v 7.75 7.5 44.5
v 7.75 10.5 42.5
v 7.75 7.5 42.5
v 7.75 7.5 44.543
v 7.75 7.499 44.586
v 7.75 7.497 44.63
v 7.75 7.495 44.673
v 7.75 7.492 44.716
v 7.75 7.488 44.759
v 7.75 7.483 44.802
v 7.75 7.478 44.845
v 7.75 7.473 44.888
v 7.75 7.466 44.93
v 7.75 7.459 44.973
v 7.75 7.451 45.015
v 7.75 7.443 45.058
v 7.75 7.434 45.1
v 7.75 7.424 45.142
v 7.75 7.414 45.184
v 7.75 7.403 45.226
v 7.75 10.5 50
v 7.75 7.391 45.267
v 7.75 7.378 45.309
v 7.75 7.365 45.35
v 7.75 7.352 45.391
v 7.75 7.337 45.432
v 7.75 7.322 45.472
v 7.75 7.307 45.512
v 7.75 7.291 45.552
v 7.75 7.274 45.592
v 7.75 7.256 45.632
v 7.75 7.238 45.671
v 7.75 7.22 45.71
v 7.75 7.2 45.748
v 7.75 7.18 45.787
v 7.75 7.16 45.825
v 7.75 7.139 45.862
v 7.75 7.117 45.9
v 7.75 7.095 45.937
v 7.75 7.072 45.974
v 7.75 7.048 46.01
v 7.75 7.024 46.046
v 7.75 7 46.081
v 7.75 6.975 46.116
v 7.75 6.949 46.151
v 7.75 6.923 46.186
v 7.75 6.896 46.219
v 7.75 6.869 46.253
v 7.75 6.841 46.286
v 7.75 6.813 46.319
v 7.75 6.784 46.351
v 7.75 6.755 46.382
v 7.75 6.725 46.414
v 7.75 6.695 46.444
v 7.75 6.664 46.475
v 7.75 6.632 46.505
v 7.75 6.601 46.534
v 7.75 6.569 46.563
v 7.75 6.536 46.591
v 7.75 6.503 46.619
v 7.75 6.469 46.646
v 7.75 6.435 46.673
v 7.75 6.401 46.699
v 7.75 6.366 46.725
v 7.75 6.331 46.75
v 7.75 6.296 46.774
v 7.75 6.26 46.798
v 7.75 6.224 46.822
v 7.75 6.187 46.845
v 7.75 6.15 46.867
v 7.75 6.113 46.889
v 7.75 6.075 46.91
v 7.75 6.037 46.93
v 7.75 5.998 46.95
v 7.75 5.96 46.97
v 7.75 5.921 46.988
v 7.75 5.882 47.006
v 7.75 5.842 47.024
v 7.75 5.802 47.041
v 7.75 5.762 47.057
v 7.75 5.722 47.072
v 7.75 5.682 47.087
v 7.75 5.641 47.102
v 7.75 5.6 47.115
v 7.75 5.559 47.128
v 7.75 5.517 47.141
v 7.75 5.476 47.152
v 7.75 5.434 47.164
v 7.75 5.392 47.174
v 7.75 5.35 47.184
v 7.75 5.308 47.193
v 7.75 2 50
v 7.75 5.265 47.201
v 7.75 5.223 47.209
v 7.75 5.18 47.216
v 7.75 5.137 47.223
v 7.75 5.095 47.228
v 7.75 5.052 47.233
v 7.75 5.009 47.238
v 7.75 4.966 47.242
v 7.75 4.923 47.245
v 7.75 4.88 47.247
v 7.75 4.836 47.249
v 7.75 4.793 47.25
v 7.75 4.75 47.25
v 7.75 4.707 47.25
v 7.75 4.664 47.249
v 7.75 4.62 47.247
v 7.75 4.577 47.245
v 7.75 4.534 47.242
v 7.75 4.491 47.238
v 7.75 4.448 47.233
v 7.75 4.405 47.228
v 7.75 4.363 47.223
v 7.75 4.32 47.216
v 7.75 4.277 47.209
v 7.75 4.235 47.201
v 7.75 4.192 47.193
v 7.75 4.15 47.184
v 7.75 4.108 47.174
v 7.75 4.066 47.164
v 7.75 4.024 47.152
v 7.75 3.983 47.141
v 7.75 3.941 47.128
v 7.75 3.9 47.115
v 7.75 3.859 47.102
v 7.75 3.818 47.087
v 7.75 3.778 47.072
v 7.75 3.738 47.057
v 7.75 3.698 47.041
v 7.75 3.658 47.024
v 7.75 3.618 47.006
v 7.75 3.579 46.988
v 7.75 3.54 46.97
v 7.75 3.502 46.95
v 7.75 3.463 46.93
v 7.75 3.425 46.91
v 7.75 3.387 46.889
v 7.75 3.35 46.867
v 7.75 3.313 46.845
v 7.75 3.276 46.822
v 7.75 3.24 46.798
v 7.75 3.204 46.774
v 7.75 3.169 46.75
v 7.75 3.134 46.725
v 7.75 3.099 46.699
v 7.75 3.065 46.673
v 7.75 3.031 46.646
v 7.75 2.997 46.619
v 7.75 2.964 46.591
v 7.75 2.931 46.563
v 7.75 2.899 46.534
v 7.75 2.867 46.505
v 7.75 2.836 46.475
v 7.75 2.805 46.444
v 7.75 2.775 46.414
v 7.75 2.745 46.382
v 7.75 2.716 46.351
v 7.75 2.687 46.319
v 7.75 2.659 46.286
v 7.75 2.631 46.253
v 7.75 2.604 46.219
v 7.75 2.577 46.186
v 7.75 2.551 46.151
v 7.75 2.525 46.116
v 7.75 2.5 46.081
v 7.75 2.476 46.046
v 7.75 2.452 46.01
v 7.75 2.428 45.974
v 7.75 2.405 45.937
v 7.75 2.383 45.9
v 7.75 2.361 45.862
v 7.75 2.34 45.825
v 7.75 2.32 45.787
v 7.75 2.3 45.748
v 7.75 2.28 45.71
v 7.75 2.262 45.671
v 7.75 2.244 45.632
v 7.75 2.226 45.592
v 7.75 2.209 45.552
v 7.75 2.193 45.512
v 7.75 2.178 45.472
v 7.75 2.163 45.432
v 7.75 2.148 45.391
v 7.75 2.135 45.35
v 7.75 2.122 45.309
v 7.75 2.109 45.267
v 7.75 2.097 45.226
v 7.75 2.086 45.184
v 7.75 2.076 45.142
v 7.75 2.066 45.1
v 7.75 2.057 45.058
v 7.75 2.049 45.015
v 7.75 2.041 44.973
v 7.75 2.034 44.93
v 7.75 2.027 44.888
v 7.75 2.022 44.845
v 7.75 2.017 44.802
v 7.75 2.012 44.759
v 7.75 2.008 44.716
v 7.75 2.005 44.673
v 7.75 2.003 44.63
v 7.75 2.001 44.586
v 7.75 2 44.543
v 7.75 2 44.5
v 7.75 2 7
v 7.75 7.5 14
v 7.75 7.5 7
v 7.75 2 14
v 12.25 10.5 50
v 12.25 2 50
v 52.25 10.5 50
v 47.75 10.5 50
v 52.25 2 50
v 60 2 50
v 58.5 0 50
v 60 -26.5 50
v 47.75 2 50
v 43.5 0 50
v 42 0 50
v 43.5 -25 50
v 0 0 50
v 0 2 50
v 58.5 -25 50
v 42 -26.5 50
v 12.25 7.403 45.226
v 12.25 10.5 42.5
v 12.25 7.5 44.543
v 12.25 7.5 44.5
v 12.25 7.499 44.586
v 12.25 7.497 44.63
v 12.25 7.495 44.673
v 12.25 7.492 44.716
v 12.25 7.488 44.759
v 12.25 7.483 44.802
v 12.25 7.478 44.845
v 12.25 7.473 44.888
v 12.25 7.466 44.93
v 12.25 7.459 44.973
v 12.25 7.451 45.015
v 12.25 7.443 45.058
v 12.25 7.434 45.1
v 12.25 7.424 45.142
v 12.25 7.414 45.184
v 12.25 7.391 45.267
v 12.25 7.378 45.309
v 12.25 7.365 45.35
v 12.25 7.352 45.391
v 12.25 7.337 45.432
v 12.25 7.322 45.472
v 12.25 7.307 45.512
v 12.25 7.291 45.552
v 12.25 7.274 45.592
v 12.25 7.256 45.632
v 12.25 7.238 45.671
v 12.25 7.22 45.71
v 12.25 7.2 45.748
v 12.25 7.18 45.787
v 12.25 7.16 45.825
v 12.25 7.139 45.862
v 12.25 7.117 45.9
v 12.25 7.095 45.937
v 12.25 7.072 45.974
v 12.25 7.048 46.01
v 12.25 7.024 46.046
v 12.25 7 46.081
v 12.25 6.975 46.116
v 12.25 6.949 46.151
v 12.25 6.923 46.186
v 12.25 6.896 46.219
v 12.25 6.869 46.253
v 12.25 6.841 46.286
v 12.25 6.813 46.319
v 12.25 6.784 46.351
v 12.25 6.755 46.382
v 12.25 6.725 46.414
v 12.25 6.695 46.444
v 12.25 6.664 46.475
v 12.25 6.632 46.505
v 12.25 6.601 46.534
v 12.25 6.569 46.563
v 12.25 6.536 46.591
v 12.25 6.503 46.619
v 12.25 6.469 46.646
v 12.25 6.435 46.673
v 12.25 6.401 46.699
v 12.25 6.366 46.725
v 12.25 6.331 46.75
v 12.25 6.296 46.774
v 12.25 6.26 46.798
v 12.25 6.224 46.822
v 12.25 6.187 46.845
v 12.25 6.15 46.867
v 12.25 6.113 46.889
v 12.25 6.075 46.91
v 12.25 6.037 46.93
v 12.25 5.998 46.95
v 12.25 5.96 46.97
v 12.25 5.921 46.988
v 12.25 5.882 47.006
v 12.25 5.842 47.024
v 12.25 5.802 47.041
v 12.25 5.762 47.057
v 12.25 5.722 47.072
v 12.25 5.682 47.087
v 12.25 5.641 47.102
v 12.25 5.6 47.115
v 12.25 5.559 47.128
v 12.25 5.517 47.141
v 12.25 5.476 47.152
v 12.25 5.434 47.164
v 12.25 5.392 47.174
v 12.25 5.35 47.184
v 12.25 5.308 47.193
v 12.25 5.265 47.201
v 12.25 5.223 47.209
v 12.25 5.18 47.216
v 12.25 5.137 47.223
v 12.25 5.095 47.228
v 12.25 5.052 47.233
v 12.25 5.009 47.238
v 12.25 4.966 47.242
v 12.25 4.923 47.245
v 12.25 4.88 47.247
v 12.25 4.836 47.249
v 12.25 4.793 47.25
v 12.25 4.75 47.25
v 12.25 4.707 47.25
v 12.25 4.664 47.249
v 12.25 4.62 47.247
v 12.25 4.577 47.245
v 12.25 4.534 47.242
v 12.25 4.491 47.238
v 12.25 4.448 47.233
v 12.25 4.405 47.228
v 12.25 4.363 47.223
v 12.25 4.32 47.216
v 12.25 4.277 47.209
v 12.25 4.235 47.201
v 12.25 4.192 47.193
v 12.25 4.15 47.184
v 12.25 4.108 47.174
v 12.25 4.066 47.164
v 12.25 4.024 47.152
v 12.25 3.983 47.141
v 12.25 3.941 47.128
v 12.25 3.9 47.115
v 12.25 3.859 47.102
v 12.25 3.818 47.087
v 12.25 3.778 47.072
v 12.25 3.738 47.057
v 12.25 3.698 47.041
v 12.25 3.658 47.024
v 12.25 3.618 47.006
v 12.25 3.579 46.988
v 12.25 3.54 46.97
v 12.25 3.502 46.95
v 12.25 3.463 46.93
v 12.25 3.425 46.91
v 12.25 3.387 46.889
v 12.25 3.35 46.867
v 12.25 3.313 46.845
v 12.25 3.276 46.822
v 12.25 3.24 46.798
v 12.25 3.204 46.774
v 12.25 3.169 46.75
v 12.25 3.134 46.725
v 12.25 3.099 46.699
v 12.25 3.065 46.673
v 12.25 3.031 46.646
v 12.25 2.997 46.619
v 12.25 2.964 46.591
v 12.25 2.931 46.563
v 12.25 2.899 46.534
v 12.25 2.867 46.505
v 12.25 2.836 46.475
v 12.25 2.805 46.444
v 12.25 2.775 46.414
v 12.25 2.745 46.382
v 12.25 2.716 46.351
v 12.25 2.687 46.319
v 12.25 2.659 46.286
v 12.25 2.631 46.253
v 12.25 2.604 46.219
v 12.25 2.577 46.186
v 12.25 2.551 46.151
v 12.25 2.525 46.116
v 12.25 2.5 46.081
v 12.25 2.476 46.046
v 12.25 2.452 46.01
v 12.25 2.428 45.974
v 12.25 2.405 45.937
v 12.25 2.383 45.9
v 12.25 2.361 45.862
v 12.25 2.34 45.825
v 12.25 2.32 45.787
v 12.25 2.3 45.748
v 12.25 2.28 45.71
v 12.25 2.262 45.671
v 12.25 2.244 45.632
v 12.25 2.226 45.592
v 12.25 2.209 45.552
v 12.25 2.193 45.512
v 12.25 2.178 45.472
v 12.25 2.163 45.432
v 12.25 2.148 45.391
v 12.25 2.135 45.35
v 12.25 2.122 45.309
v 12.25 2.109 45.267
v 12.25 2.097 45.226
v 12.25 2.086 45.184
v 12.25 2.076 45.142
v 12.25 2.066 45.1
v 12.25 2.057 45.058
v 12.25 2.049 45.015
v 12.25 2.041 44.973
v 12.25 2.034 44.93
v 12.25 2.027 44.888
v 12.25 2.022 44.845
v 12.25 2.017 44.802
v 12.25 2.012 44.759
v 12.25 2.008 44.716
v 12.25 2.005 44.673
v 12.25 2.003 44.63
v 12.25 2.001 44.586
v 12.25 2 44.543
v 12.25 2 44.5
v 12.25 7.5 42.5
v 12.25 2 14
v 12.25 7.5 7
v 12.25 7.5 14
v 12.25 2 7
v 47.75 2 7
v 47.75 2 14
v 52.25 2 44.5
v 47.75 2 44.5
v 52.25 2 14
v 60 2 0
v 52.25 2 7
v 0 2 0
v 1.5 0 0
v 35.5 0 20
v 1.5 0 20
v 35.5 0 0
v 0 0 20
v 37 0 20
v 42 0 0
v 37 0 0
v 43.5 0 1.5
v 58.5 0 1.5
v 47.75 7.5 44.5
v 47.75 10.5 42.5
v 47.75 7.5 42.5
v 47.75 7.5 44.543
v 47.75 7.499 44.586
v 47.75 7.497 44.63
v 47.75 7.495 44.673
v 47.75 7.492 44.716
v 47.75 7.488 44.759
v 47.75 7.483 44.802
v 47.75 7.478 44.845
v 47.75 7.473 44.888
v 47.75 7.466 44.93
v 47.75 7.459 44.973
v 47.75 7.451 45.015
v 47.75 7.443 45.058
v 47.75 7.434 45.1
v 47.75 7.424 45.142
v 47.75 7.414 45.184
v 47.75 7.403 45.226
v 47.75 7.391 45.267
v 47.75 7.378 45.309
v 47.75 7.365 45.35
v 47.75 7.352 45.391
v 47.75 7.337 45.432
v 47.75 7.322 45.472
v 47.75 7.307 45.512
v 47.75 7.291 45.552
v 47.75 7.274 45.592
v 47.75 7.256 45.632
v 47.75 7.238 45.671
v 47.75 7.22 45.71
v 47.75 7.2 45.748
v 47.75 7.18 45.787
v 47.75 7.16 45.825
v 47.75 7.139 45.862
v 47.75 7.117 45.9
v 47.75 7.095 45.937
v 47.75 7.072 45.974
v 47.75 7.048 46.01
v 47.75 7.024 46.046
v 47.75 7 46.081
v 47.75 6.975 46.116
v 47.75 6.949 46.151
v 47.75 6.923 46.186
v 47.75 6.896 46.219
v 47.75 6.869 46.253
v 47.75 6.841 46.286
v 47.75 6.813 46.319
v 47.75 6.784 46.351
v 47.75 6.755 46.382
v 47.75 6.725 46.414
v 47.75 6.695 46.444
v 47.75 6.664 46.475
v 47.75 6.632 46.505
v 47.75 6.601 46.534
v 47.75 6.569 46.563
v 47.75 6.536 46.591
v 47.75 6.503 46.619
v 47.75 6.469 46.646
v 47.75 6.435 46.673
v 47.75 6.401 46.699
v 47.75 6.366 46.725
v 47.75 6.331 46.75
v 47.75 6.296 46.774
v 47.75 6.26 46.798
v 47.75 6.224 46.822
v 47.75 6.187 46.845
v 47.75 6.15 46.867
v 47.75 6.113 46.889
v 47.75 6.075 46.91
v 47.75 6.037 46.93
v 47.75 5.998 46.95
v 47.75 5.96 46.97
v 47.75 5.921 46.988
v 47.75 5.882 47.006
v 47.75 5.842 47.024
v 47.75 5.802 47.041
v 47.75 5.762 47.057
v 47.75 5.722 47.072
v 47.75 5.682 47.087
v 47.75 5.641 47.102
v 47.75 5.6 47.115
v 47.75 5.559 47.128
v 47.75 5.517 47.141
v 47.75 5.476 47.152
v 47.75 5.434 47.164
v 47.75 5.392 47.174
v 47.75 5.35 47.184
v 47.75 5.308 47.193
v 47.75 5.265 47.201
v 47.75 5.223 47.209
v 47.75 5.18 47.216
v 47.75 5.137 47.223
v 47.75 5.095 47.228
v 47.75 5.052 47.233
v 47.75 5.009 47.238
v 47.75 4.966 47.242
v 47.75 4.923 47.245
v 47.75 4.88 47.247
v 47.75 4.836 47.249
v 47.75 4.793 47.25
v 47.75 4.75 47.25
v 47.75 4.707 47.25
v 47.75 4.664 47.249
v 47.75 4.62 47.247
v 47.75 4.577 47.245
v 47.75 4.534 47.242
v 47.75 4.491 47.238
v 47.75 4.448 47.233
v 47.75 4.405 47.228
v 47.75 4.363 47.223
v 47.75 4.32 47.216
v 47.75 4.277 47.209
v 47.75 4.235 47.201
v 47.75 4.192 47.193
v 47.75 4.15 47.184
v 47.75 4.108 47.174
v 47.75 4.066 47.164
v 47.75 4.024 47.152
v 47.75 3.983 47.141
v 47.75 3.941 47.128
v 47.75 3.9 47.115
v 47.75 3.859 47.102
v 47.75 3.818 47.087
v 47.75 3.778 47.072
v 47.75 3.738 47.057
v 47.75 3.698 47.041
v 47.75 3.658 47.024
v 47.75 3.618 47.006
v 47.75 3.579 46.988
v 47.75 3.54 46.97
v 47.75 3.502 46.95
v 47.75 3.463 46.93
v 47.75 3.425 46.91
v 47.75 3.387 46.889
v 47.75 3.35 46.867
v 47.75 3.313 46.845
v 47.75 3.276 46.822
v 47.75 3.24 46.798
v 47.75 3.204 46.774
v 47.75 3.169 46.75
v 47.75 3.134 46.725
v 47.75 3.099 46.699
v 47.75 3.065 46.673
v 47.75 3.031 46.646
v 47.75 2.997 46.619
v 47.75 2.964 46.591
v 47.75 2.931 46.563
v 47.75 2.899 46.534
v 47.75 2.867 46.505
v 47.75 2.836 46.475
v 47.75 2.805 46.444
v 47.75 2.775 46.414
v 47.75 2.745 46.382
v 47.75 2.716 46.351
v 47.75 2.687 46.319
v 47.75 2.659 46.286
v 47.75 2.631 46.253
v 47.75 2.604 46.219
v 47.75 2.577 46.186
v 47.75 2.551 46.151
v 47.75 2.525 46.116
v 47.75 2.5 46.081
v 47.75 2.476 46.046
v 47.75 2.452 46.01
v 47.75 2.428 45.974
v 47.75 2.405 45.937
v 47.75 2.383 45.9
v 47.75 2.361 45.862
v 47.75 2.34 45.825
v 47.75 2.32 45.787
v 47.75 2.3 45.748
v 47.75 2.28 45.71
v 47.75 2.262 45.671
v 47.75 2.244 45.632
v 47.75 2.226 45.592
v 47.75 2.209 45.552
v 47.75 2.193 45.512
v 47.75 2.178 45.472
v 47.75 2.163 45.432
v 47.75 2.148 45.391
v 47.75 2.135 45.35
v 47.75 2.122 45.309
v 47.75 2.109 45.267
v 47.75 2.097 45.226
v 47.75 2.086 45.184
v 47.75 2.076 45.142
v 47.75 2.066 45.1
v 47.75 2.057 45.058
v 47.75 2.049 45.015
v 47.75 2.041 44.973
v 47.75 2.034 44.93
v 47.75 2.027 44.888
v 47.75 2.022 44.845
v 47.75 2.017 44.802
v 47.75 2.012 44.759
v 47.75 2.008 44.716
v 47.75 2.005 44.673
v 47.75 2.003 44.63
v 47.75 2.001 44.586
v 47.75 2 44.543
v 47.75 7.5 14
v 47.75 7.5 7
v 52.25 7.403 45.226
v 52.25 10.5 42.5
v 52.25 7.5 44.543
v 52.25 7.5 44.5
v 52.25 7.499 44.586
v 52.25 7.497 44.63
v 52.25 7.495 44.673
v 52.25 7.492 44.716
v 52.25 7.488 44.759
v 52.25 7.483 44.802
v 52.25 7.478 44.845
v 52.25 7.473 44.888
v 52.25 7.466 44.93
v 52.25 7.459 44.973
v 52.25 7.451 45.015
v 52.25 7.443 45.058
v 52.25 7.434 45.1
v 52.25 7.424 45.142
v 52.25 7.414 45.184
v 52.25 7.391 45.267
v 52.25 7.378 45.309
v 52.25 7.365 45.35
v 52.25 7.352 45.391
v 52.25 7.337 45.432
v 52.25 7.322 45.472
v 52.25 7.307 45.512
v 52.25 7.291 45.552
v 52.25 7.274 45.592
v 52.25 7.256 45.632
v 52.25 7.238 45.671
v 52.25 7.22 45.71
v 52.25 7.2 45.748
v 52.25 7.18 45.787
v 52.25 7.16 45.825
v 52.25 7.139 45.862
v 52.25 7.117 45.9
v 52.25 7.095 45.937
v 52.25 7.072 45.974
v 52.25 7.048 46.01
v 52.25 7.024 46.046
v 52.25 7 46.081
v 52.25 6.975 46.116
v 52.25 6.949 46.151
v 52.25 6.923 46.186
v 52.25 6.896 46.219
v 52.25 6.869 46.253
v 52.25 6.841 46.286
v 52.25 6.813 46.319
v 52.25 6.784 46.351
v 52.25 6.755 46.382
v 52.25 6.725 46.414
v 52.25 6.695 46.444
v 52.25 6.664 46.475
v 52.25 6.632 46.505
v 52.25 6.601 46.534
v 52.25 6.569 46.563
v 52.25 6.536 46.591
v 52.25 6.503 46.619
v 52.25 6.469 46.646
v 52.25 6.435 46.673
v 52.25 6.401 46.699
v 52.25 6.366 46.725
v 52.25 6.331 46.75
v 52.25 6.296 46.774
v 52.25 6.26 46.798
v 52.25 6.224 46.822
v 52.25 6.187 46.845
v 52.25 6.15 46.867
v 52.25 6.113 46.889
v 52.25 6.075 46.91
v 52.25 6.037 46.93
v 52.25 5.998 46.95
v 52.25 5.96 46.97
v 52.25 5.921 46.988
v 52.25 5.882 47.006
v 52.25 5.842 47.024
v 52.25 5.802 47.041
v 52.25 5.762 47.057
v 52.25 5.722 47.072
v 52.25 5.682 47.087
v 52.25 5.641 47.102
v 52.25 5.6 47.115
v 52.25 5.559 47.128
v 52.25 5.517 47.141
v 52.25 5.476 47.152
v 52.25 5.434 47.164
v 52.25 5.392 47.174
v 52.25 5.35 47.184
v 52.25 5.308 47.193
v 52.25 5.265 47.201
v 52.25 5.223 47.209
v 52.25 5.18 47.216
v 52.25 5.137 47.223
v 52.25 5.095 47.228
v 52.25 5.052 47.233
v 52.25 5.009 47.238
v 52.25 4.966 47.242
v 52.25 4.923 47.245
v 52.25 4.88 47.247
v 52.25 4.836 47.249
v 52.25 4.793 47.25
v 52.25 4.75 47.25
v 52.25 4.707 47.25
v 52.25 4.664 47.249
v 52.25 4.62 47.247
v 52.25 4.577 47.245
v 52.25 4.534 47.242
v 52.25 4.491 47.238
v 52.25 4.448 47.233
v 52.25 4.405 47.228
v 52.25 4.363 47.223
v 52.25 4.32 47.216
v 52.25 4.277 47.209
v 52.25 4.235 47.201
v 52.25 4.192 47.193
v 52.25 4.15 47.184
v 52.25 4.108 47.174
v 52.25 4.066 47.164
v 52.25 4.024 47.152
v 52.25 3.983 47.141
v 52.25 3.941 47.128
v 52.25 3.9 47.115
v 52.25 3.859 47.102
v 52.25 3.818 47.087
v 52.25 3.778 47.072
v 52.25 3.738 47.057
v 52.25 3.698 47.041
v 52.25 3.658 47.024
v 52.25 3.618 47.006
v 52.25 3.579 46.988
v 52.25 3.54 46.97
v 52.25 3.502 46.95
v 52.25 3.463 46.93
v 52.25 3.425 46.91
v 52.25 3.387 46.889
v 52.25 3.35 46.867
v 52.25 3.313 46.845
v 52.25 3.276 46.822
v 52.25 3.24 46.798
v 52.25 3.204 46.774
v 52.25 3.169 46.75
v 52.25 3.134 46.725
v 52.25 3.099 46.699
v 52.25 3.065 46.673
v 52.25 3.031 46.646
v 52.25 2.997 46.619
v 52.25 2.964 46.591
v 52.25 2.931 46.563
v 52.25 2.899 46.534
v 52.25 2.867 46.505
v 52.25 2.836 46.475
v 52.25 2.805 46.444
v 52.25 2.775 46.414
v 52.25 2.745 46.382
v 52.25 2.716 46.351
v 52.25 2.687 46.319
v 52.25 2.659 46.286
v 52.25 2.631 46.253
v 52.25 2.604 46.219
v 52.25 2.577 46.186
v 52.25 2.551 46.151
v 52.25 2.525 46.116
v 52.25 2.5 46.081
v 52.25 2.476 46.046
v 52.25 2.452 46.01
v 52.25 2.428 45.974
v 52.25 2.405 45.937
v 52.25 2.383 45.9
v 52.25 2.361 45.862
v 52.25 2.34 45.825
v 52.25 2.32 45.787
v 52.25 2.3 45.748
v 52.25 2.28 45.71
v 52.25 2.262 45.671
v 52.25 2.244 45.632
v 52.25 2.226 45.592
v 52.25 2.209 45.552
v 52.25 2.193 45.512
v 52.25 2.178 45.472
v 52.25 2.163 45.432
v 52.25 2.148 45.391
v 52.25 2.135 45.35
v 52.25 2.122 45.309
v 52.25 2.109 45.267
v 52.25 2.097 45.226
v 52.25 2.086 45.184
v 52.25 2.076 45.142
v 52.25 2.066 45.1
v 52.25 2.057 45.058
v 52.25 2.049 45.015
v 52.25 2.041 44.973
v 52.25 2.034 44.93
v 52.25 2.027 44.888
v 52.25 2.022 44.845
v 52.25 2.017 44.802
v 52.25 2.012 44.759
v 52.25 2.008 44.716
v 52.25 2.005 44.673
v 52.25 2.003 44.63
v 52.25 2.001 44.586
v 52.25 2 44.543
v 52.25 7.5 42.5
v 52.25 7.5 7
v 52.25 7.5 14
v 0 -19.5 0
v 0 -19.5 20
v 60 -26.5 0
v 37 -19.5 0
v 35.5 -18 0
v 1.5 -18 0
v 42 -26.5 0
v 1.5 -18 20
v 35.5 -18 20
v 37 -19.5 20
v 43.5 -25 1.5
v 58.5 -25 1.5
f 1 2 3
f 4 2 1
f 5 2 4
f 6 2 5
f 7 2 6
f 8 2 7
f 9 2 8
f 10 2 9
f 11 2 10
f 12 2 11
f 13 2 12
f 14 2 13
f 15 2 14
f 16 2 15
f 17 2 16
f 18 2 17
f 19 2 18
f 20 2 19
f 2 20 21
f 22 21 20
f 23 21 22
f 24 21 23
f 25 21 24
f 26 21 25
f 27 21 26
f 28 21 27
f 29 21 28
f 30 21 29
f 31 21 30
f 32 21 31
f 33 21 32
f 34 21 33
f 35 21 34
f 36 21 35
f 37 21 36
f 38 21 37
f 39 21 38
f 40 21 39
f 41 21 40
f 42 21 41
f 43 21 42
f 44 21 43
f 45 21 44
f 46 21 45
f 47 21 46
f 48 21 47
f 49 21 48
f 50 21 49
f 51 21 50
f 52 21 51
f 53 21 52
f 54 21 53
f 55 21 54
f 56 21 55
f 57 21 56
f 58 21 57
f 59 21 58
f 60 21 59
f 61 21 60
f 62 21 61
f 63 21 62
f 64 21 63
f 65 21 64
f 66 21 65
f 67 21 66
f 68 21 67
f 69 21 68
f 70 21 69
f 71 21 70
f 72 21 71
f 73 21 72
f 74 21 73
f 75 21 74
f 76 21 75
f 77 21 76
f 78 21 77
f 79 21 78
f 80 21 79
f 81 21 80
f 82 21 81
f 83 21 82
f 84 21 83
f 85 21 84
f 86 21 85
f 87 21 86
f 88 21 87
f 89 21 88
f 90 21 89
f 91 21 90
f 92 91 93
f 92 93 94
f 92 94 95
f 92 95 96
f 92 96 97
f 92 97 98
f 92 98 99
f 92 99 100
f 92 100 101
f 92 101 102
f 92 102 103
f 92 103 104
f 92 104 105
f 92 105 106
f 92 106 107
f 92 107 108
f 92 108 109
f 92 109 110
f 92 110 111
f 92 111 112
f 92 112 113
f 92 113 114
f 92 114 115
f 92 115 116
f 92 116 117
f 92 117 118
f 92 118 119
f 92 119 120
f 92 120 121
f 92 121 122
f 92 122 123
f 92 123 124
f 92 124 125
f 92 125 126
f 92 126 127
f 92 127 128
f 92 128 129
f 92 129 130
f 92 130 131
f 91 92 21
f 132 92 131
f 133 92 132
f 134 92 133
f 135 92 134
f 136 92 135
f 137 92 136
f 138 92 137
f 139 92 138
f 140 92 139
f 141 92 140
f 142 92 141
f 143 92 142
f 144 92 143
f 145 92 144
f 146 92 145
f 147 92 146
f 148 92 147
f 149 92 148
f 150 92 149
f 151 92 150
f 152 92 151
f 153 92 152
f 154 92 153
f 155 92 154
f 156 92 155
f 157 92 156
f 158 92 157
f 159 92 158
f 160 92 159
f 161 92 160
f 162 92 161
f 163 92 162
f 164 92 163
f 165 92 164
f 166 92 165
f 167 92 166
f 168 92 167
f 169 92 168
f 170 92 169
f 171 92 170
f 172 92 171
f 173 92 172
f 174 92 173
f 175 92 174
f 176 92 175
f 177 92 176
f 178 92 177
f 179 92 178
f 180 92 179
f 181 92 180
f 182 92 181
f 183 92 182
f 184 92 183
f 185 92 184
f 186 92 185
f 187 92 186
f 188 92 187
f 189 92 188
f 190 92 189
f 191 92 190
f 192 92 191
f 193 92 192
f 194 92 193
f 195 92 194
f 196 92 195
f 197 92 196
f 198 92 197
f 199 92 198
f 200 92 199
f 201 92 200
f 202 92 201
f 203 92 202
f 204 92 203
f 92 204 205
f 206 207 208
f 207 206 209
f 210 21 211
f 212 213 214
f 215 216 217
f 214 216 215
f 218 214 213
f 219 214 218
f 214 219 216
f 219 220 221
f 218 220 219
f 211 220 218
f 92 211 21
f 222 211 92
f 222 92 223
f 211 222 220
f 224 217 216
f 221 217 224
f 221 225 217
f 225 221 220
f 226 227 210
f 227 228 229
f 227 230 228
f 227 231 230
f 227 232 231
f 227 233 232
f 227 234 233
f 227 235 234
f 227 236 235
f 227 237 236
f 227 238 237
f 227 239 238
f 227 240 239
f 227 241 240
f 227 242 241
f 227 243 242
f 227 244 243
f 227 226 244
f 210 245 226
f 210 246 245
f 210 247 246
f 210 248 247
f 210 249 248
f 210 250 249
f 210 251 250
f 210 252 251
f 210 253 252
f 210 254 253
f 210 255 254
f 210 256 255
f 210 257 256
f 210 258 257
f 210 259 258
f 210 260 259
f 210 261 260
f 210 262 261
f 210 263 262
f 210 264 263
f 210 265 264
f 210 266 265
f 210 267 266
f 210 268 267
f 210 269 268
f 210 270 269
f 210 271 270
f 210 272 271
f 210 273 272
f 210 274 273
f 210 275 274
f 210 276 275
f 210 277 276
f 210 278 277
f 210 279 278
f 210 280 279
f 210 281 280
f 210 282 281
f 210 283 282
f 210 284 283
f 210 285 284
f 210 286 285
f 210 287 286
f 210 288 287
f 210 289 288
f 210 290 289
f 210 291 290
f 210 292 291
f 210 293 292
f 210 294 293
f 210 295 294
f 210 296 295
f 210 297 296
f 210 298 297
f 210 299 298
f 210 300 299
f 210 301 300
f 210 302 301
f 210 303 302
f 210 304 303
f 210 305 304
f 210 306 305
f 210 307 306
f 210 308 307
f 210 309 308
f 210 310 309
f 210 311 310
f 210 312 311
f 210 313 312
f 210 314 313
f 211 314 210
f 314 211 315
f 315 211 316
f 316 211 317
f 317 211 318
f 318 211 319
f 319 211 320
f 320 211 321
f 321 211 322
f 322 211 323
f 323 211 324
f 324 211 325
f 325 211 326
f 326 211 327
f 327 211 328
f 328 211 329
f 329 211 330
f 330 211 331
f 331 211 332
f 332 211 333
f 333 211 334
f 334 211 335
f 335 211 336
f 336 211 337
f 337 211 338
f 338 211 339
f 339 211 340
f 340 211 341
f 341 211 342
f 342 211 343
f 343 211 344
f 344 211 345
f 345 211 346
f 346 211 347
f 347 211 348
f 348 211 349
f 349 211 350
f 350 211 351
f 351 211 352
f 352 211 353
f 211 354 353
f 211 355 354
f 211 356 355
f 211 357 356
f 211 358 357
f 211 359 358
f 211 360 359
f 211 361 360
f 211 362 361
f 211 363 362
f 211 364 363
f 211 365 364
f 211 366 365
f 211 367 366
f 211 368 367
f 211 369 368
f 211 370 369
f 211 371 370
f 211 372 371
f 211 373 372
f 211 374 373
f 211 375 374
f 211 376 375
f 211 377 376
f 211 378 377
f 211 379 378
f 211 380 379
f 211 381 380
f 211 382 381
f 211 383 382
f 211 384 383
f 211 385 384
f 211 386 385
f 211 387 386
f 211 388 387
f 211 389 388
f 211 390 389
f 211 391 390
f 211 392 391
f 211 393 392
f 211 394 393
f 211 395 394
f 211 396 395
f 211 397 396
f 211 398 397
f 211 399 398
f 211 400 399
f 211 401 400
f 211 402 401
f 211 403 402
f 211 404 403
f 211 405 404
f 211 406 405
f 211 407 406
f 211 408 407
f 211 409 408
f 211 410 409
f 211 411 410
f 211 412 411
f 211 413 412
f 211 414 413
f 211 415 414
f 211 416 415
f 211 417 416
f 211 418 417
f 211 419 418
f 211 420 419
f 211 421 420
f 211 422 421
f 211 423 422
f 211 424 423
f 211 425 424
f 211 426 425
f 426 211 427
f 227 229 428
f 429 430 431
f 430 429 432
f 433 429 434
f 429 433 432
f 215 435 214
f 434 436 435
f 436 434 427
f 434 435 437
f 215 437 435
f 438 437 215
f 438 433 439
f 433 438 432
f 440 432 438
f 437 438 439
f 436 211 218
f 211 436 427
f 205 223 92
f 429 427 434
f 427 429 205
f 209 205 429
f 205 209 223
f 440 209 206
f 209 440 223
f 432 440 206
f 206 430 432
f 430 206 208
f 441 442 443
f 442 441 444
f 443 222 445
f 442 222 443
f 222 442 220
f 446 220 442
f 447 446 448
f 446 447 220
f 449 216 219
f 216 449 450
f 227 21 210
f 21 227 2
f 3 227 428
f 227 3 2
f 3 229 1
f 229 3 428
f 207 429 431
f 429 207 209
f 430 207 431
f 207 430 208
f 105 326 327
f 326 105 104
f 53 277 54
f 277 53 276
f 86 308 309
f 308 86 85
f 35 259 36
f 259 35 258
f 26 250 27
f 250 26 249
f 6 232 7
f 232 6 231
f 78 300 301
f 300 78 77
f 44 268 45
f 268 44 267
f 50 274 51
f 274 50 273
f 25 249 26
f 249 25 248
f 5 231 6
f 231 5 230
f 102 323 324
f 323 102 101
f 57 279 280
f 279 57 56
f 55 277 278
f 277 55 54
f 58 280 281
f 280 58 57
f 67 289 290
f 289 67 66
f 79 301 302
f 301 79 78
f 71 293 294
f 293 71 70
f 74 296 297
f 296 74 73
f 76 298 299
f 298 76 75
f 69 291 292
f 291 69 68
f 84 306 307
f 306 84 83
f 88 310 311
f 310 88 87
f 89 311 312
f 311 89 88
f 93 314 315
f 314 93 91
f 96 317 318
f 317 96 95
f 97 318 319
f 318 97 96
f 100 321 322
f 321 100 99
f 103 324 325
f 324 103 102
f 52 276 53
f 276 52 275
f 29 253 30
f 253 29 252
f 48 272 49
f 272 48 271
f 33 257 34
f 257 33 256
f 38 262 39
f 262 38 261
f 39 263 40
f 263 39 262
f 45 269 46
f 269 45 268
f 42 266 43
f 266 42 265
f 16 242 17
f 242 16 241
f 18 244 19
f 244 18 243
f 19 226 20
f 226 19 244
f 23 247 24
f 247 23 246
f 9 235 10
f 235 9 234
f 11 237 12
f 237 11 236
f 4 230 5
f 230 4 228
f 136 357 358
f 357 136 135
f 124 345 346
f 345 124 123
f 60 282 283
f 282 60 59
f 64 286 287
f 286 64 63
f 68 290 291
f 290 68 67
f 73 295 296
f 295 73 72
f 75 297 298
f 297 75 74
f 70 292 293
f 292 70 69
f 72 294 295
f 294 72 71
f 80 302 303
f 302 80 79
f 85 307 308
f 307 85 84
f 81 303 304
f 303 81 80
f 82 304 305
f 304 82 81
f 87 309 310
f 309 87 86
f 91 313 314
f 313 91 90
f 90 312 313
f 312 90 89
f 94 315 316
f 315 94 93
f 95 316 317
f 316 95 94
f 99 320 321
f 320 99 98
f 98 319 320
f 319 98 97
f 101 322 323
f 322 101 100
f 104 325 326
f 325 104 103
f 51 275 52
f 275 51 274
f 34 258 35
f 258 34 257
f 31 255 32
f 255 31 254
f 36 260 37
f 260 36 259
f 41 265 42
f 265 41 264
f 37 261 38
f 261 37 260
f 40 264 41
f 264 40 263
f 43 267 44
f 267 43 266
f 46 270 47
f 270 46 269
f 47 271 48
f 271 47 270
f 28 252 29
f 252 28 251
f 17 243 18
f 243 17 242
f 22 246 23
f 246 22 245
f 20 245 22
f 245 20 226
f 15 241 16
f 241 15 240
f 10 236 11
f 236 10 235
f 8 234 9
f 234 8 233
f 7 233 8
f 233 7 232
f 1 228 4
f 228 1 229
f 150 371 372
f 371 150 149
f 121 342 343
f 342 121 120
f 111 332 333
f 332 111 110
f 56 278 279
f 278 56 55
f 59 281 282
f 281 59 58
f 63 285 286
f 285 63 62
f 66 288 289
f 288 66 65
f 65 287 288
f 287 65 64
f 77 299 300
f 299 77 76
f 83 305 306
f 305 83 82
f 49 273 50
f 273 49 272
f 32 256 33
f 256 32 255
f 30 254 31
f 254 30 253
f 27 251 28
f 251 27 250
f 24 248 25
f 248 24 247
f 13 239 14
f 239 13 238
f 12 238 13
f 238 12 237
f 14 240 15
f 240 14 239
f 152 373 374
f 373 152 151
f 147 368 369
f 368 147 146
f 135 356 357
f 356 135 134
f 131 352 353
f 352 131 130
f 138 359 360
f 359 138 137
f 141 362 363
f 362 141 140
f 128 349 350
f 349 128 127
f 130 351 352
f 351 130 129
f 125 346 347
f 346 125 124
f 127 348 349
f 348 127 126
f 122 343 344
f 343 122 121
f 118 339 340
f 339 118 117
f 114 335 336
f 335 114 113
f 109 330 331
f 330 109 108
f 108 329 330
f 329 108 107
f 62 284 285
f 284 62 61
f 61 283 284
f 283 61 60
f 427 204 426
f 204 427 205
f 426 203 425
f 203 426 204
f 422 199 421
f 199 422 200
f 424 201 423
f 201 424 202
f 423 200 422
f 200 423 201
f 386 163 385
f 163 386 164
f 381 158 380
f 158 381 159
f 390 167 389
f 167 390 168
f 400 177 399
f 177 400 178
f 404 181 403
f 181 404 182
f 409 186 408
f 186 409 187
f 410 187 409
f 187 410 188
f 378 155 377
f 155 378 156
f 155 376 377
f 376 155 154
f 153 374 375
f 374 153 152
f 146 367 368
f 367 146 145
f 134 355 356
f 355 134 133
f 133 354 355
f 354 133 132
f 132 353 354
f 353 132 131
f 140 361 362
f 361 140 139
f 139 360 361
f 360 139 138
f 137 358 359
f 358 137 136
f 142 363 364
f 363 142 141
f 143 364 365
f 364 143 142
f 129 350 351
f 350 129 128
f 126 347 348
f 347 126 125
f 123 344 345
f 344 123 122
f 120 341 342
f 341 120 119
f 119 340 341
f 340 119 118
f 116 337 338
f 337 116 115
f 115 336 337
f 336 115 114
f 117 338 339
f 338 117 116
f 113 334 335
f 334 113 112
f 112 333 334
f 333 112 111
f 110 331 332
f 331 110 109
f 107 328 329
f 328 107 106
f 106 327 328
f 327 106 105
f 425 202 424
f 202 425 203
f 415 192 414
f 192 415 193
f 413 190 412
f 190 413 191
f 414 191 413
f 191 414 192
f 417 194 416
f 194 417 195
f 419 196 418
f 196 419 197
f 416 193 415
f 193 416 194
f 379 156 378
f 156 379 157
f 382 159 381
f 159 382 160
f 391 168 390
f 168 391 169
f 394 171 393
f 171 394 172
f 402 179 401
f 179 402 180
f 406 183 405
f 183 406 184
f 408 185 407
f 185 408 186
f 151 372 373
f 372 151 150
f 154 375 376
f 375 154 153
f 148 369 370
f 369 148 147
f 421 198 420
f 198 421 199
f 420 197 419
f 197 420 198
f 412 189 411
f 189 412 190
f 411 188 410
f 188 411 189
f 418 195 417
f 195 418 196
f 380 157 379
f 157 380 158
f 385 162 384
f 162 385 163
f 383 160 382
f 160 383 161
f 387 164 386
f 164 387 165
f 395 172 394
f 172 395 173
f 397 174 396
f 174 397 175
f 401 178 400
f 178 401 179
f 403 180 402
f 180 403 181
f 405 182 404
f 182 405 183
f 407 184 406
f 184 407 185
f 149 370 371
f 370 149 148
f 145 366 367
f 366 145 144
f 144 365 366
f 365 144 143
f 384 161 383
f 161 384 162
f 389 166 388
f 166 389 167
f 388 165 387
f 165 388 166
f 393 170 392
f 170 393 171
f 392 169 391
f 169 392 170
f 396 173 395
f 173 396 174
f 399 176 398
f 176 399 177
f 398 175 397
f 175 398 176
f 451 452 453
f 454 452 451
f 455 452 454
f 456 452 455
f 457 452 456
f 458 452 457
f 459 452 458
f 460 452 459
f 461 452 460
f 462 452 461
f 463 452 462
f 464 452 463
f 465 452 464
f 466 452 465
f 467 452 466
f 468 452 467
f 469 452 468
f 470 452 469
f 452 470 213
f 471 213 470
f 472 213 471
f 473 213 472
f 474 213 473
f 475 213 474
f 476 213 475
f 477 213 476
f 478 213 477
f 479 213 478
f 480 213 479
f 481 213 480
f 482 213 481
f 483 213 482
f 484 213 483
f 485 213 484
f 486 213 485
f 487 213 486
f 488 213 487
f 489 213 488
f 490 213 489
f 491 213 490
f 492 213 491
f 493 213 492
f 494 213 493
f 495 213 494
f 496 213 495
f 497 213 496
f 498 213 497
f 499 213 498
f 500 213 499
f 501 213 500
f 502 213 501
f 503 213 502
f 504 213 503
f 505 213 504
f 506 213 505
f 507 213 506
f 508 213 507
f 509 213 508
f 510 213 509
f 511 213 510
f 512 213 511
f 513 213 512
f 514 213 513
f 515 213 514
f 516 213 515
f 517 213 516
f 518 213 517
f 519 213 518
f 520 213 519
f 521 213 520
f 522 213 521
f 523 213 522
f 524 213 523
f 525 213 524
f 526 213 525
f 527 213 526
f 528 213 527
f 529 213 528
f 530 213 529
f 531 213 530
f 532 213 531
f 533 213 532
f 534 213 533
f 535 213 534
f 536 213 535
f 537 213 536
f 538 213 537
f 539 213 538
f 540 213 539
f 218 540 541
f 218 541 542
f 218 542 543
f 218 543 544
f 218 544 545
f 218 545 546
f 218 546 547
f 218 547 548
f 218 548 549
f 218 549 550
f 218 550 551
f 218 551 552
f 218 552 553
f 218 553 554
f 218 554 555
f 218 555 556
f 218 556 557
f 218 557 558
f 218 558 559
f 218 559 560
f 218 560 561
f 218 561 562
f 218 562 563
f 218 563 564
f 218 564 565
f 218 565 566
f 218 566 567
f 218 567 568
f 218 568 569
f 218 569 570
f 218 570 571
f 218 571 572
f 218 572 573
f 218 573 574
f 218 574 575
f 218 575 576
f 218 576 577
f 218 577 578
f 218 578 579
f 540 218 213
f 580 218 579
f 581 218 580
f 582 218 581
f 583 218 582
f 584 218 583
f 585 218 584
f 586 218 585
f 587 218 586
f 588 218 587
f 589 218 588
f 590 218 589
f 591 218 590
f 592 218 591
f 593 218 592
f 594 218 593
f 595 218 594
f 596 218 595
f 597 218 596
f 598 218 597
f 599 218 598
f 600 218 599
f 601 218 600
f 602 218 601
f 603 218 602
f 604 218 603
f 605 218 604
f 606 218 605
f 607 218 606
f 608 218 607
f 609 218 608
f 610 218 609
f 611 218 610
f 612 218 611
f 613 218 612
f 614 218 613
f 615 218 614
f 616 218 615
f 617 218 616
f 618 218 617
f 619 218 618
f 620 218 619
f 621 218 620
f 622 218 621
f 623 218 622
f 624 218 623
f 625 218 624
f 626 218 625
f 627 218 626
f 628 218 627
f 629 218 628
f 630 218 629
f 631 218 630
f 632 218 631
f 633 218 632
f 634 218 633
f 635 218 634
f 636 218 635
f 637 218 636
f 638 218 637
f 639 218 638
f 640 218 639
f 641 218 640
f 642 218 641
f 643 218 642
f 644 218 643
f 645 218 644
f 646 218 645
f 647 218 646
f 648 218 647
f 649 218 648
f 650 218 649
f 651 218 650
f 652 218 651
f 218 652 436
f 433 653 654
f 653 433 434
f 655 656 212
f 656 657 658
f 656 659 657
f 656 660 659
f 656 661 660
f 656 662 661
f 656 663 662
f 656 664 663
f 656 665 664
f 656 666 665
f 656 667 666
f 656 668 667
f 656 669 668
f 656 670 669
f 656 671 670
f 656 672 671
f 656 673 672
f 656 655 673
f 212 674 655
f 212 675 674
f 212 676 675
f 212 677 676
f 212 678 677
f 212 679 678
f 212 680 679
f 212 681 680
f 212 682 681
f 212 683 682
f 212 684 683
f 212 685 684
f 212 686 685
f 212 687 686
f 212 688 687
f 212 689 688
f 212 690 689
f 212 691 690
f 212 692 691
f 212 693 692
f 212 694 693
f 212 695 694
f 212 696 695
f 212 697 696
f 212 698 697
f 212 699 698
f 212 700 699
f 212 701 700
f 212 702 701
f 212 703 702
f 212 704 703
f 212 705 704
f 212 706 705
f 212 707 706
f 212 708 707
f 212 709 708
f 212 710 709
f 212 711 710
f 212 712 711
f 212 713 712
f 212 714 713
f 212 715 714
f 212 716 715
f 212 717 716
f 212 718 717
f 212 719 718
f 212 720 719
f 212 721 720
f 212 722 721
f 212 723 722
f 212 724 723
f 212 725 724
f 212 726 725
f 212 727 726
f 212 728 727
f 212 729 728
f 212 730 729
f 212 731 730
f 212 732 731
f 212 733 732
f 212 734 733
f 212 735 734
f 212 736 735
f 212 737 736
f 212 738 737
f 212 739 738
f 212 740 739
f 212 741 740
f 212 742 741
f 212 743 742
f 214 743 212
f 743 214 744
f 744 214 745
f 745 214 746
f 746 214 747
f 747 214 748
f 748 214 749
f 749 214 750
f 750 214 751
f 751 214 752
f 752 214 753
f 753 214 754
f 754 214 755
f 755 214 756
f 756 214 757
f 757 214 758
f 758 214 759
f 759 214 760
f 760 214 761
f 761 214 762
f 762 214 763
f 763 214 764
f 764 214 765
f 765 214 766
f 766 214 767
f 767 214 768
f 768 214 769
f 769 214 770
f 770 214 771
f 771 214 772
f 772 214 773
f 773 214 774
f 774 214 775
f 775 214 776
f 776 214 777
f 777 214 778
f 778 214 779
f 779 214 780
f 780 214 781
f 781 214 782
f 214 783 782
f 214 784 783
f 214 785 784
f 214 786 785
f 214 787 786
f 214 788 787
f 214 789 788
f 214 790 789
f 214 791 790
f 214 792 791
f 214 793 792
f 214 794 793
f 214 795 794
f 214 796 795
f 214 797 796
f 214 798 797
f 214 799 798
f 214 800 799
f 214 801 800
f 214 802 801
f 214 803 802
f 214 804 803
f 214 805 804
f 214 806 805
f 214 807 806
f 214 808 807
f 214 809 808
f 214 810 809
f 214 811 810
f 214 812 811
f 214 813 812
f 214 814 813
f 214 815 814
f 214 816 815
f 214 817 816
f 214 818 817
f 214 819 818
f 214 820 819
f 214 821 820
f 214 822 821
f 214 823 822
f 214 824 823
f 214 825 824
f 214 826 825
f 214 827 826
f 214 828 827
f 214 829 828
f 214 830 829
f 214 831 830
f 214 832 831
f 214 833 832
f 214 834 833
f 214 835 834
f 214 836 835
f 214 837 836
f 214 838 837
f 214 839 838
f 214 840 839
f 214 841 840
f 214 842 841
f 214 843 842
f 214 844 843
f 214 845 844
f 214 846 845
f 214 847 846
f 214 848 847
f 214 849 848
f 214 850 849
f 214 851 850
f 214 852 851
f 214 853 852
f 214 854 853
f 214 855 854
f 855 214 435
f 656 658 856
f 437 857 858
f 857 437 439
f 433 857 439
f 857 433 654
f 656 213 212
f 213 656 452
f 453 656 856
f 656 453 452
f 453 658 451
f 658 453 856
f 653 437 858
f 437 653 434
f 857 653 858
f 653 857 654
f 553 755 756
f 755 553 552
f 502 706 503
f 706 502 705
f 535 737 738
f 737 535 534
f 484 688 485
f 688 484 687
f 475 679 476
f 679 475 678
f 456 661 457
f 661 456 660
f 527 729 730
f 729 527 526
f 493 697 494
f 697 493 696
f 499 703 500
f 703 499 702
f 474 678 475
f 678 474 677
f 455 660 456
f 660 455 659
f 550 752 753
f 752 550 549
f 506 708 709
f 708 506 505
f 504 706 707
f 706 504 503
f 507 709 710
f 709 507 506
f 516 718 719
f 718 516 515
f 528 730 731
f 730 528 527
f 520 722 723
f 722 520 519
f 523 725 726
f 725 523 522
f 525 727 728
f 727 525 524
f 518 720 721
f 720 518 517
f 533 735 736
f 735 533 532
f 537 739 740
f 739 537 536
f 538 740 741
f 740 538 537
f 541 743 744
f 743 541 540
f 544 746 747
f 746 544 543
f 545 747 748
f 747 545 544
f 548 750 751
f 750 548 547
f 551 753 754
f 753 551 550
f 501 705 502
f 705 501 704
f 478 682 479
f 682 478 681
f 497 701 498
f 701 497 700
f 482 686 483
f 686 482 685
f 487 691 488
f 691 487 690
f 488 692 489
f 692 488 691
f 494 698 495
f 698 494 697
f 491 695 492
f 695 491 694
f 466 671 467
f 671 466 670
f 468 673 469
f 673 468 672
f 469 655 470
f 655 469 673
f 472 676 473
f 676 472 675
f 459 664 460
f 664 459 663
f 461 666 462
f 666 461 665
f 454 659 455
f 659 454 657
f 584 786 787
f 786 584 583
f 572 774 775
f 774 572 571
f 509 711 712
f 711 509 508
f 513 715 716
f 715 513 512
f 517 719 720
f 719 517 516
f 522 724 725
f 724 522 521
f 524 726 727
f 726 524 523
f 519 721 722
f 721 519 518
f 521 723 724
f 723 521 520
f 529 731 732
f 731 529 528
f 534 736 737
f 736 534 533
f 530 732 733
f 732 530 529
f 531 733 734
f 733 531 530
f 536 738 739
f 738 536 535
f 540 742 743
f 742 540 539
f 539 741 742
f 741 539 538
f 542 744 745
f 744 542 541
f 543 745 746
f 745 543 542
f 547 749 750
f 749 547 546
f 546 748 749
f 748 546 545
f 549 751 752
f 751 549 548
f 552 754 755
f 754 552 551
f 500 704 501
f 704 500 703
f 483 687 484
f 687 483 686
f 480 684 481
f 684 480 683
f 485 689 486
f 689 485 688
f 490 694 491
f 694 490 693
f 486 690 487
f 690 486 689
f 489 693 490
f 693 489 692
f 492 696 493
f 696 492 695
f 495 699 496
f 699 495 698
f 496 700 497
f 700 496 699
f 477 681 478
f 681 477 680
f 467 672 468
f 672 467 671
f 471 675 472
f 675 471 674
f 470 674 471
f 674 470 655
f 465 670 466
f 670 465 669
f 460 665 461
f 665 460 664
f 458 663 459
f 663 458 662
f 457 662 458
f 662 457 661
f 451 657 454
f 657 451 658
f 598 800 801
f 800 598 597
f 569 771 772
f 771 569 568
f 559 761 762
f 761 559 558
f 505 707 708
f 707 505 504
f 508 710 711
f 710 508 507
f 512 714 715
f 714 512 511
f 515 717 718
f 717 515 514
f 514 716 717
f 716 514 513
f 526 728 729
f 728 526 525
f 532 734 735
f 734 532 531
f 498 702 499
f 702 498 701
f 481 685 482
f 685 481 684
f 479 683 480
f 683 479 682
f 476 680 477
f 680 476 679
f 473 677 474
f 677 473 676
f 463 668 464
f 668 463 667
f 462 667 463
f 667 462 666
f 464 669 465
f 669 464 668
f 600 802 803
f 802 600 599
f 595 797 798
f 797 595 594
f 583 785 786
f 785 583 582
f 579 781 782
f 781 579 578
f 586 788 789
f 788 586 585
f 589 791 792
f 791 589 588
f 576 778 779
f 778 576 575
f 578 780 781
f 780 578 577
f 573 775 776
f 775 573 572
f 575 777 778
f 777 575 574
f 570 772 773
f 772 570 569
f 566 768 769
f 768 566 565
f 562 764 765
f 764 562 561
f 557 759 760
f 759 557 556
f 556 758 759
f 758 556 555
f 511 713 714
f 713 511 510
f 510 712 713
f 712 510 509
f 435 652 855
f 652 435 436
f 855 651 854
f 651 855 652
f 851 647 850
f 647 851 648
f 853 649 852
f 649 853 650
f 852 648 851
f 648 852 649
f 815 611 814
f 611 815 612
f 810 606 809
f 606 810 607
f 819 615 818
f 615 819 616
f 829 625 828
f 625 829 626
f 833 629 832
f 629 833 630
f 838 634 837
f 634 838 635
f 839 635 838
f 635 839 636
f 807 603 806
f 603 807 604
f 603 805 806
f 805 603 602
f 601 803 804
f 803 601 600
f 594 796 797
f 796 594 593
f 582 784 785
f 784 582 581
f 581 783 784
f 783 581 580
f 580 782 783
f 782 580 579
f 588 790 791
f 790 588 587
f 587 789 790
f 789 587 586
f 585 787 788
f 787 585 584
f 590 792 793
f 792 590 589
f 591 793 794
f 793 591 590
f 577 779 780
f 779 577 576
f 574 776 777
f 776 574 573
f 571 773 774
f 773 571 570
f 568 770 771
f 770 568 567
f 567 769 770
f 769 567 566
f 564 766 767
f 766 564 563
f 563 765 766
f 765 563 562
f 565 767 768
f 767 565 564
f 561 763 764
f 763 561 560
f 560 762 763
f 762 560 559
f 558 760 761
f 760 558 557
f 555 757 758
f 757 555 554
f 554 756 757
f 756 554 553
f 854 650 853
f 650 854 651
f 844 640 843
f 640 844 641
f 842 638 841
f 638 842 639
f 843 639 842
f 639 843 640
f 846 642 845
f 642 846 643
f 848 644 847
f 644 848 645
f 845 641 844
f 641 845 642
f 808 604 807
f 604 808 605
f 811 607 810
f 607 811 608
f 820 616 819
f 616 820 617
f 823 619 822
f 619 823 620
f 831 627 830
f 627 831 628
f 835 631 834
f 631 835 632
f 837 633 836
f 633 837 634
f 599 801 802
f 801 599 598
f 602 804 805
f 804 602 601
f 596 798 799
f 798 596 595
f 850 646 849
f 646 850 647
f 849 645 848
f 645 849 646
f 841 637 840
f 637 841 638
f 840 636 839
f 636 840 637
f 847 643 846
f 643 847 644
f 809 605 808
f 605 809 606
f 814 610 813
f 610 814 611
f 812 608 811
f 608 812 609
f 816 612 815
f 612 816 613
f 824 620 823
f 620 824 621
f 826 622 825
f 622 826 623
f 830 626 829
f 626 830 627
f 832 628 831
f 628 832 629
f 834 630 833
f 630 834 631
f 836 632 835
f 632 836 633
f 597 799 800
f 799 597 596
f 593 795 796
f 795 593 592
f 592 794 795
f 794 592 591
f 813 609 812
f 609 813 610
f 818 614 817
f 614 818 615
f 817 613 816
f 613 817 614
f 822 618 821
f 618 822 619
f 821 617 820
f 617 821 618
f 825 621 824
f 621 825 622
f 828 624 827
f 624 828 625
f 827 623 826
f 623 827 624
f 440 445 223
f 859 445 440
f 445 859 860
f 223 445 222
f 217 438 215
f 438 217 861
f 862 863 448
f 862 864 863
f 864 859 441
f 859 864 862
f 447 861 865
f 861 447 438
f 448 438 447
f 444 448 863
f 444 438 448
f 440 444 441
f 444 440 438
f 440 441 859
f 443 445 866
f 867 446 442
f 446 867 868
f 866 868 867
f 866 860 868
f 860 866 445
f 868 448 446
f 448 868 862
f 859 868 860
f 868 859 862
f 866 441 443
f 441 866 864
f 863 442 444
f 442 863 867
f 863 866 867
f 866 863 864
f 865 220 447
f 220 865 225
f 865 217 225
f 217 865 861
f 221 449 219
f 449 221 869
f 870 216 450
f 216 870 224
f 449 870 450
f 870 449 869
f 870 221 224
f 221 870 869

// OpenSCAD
// file: IKEA Skadis include holder.scad
$fn=400;

sh_height=43;
sh_width=4.5;
sh_hanger_spacing=5.5;
sh_material_size=2;
sh_short_tail=2;

module ikea_skadis_holder() {
    difference() {
        union() {
            
            //Vertical wall
            color("green")
            cube([sh_width,sh_material_size,sh_height]);
            
            // Retainer
            color("blue")
            translate([0,0,sh_height-sh_hanger_spacing])
            cube([sh_width,sh_hanger_spacing+sh_material_size*2+1,sh_hanger_spacing]);
            
            //Vertical wall (short)
            color("cyan")
            translate([0, sh_hanger_spacing+sh_material_size,sh_height-sh_short_tail-sh_hanger_spacing])
            cube([sh_width,sh_material_size+1,sh_short_tail]);

            //Schnöpsel
            color("yellow")
            translate([0, sh_material_size,0])
            cube([sh_width,sh_hanger_spacing,7]);
        }
        
        
    color("red")
    translate([-1,sh_material_size+sh_hanger_spacing/2,sh_height-sh_hanger_spacing])
    rotate([0,90,0])
    cylinder(sh_width+2, sh_hanger_spacing/2, sh_hanger_spacing/2);
        
    }
}
ikea_skadis_holder();
// file: ../modules/hex_grid.scad
*hex_grid();

module hex_grid(size = [ 50, 30 ], wall = 1.5, hole_radius = 1.5) {
  hole_outer_radius = hole_radius;
  hole_inner_radius = hole_outer_radius * sqrt(3) / 2;

  hex_inner_radius = hole_inner_radius + wall / 2;
  hex_outer_radius = 2 * hex_inner_radius / sqrt(3);


  distance_between_hexes_centers = 2 * hex_inner_radius;
  x_distance = distance_between_hexes_centers * cos(30);
  y_distance = distance_between_hexes_centers * sin(30);

  x_hexes_count = ceil(size.x / (2 * x_distance));
  y_hexex_count = ceil(size.y / (4 * y_distance));

  module hex() {
    difference() {
      circle(hex_outer_radius, $fn = 6);
      circle(hole_outer_radius, $fn = 6);
    }
  }

  module column() {
    for (i = [0:y_hexex_count]) {
      translate([ 0, distance_between_hexes_centers * i ]) hex();
    }
  }

  module grid_quarter() {
    for (x = [0:x_hexes_count]) {
      translate([ x_distance * x, x % 2 == 0 ? 0 : -y_distance ]) column();
    }
  }

  module grid() {
    grid_quarter();
    mirror([ 0, 1, 0 ]) { grid_quarter(); }

    mirror([ 1, 0, 0 ]) {
      grid_quarter();
      mirror([ 0, 1, 0 ]) { grid_quarter(); }
    }
  }

  intersection() {
    grid();
    square(size, center = true);
  }
}
// file: IKEA Skadis include backwall with 2 hooks.scad
$fn=400;

sh_holder_thickness = 4.5;
sh_holder_height = 43;

use <./IKEA Skadis include holder.scad>

module ikea_skadis_backwall(width, height) {
    union() {

        width = width > 43  ? width : 44;

        // backwall
        cube([width,2,height]);

        if(height < sh_holder_height) {
            // holder left
            translate([width/2-sh_holder_thickness/2-20,0,0])
            ikea_skadis_holder();

            // holder right
            translate([width/2-sh_holder_thickness/2+20,0,0])
            ikea_skadis_holder();
        } else {
            // holder left
            translate([width/2-sh_holder_thickness/2-20,0,height-sh_holder_height])
            ikea_skadis_holder();

            // holder right
            translate([width/2-sh_holder_thickness/2+20,0,height-sh_holder_height])
            ikea_skadis_holder();
        }
    }
}

ikea_skadis_backwall(24,43);
// main file
$fn=400;

sh_cube_knife_width = 37;
sh_cube_knife_depth = 21;
sh_cube_knife_height = 20;
sh_cube_sbh_width = 18;
sh_cube_sbh_depth = 28;
sh_cube_sbh_height = 50;
sh_material_thickness = 1.5;

sh_holder_thickness = 4.5;
sh_holder_height = 43;

use <./IKEA Skadis include backwall with 2 hooks.scad>
use <./../modules/hex_grid.scad>


union() {

    // Backwall
    translate([0, 0,0])
    ikea_skadis_backwall(60, 50);

    // Cube for the knife
    translate([0, - sh_cube_knife_depth + sh_material_thickness, 0])
    difference() {
        cube([sh_cube_knife_width,sh_cube_knife_depth,sh_cube_knife_height]);
        translate([sh_material_thickness, sh_material_thickness, -1])
        cube([sh_cube_knife_width - sh_material_thickness * 2, sh_cube_knife_depth - sh_material_thickness * 2, sh_cube_knife_height + 2]);
    }

    // Cube for the spare blades
    translate([60 - sh_cube_sbh_width,- sh_cube_sbh_depth + sh_material_thickness, 0])
    difference() {
        cube([sh_cube_sbh_width,sh_cube_sbh_depth,sh_cube_sbh_height]);
        translate([sh_material_thickness, sh_material_thickness, sh_material_thickness])
        cube([sh_cube_sbh_width - sh_material_thickness * 2, sh_cube_sbh_depth - sh_material_thickness * 2, sh_cube_sbh_height + 2]);
    }
}
